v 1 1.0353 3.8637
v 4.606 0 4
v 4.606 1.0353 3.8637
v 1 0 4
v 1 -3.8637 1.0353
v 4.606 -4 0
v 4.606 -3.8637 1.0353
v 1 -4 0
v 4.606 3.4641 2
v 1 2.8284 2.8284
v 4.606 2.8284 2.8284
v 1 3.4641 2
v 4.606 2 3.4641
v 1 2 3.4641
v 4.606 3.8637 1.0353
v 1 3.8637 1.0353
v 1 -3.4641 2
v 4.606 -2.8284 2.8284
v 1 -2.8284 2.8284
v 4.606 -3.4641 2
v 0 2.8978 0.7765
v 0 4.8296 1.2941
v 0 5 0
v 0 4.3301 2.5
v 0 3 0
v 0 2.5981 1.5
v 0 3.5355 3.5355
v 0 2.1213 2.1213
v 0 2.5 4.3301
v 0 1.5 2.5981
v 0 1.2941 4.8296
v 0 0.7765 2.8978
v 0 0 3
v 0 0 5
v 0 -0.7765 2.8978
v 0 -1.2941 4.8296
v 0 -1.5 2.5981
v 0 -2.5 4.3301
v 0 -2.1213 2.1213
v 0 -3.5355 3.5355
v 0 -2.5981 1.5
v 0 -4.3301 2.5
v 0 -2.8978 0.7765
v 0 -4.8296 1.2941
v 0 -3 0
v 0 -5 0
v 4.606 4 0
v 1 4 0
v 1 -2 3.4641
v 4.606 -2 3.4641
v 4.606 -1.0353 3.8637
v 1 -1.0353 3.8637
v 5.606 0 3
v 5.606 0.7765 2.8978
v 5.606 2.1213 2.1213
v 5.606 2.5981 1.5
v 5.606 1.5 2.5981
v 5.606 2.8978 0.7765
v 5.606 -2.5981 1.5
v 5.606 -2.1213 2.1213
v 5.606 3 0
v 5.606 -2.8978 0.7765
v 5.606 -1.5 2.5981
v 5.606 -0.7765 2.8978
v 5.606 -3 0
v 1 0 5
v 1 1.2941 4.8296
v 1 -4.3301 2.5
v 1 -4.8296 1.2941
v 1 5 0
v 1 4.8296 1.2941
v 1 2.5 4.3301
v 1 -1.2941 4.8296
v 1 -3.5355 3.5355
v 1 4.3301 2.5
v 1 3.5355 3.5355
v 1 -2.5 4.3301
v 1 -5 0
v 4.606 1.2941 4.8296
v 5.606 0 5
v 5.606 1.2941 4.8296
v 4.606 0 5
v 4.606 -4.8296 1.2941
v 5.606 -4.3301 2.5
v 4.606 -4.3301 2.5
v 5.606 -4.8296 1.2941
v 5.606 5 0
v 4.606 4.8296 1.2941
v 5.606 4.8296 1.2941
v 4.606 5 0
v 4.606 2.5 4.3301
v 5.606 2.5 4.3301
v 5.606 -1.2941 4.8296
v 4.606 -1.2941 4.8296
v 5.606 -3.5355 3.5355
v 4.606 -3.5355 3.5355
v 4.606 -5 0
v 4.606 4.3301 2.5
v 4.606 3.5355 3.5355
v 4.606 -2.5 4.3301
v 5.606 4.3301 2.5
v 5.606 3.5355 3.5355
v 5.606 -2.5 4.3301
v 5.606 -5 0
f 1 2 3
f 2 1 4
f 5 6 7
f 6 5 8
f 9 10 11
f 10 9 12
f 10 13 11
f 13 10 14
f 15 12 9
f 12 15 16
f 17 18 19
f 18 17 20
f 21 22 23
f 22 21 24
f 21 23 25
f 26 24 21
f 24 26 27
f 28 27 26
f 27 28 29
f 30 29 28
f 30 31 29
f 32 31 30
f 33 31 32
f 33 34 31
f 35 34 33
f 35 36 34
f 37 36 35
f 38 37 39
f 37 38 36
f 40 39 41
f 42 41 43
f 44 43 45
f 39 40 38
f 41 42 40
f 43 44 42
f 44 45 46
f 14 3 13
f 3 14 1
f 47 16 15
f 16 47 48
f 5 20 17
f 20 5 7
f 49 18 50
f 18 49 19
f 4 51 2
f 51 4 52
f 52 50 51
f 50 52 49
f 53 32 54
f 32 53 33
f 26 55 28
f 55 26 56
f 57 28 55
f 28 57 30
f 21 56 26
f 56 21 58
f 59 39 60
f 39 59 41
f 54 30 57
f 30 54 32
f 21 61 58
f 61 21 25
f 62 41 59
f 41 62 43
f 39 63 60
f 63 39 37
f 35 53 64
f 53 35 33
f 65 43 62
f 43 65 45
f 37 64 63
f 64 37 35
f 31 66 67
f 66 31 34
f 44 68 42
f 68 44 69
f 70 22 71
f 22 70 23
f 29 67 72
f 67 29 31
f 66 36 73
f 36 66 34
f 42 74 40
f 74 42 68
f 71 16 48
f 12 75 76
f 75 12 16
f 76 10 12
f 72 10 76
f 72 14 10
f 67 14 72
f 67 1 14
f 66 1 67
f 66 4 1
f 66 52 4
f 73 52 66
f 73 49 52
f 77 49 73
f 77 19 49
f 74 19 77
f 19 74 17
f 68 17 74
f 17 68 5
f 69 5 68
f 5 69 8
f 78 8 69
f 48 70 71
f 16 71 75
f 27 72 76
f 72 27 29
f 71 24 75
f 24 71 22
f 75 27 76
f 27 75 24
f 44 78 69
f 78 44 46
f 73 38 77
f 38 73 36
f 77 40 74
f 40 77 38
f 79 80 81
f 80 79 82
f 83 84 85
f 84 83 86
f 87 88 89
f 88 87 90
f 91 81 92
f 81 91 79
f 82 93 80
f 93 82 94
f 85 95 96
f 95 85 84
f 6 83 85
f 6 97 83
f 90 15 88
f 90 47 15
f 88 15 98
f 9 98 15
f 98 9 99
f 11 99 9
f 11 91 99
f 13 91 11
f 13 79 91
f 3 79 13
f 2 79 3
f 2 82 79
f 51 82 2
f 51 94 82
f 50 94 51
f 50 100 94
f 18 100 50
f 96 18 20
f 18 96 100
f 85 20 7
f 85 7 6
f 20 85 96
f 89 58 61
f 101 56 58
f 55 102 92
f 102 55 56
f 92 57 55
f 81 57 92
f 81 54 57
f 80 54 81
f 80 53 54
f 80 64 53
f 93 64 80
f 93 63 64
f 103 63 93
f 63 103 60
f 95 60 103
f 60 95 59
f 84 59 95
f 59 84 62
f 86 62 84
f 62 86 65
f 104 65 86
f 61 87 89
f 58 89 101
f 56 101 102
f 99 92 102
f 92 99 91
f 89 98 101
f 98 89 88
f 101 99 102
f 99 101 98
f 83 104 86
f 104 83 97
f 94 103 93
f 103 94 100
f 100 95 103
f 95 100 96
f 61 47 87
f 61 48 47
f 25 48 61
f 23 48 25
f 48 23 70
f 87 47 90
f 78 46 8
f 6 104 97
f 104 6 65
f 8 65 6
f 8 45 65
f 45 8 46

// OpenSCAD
// file: ../build_environments.scad
// build_environments.scad: modules to build level sections
//

module pool(diameter=10.0, wall_height=2.0, step_width=3.0, connections=[])
{
    difference() {
        union() {
        difference() {
            cylinder(h=0.5,r1=diameter+step_width,r2=diameter+step_width,$fn=48);
            translate([0,0,-0.1])
                cylinder(h=0.7,r1=diameter,r2=diameter,$fn=48);
        }
        difference() {
            cylinder(h=wall_height,r1=diameter+step_width+1.0,r2=diameter+step_width+1.0,$fn=48);
            translate([0,0,-0.1])
                cylinder(h=wall_height+0.2,r1=diameter+step_width,r2=diameter+step_width,$fn=48);
        }
        }
    
        for (c = connections)
        {
            rotate([0,90,0]) {
                angle = atan2(c[1],c[0]);
                rotate([-angle,0,0]) {
                    cylinder(h=diameter+5.0,r1=c[2],r2=c[2],$fn=48);
                }
            }
        }
    }
}

module straight(length=10.0, width=2.0, dy1=0.0, dy2=0.0, dz=0.0)
{
    dims = [0, 0, 0, 0, 0, (dz/length)];
    matrix = [
        [ 1, dims[0], dims[1], 0 ],
        [ dims[2], 1, dims[4], 0 ],
        [ dims[5], dims[3], 1, 0 ],
        [ 0, 0, 0, 1 ]
    ];
    multmatrix(matrix)
    difference() {
        translate([dy1,0,0])
        union() {
            rotate([0,90,0]) {
                difference() {
                    cylinder(h=(length-dy1-dy2),r1=width+1.0,r2=width+1.0,$fn=24);
                    translate([0,0,-0.1])
                        cylinder(h=(length-dy1-dy2+0.2),r1=width,r2=width,$fn=24);
                }
                difference() {
                    cylinder(h=1.0,r1=width+2.0,r2=width+2.0,$fn=24);
                    translate([0,0,-0.1])
                        cylinder(h=1.2,r1=width,r2=width,$fn=24);
                }
                translate([0,0,(length-dy1-dy2)-1.0]) {
                    difference() {
                        cylinder(h=1.0,r1=width+2.0,r2=width+2.0,$fn=24);
                        translate([0,0,-0.1])
                            cylinder(h=1.2,r1=width,r2=width,$fn=24);
                    }
                }
            }
        }
        translate([0,0,-(2*width+4.0)/2])
            cube([3*length,3*length,2*width+4.0],center=true);
    }
}

module curve(p0=[0,0], center=[0,0], dir=1, angle=0.0, width=2.0)
{
    radius = sqrt((p0[0]-center[0])*(p0[0]-center[0]) + (p0[1]-center[1])*(p0[1]-center[1]));
    if (dir == 0) {
        difference() {
            rotate([0,0,-90])
            difference() {
                rotate_extrude(angle = angle, convexity = 10, $fn=32)
                    translate([radius, 0, 0])
                        circle(r = width+1.0,$fn=24);
                rotate([0,0,-1.0])
                    rotate_extrude(angle = angle+2.0, convexity = 10, $fn=32)
                        translate([radius, 0, 0])
                            circle(r = width,$fn=24);
            }
            translate([0,0,-(2*width+4.0)/2])
                cube([5*radius,5*radius,2*width+4.0],center=true);
        }
    }
    else {
        difference() {
            rotate([0,0,90])
            difference() {
                rotate_extrude(angle = -angle, convexity = 10, $fn=32)
                    translate([radius, 0, 0])
                        circle(r = width+1.0,$fn=24);
                rotate([0,0,1.0])
                    rotate_extrude(angle = -angle-2.0, convexity = 10, $fn=32)
                        translate([radius, 0, 0])
                            circle(r = width,$fn=24);
            }
            translate([0,0,-(2*width+4.0)/2])
                cube([5*radius,5*radius,2*width+4.0],center=true);
        }
    }

}

// test pool
//pool(diameter=12.0000, wall_height=3.0000, step_width=3.0000, connections=[[0.0000,-26.0000,2.0000], [23.6074,0.0000,2.0000]]);

// test straight, slope
//straight(length=26.0000, width=2.0000, dy1=11.8322, dy2=6.7082, dz=0.0000);
//straight(length=29.1549, width=12.0000, dy1=0.0000, dy2=0.0000, dz=-15.0000);

// test curve
//curve(p0=[23.6074, 0.0000], center=[23.6074, 5.0000], dir=0, angle=60.1011, width=2.0000);
//curve(p0=[33.6426, 12.4219], center=[37.9771, 9.9295], dir=1, angle=120.4627, width=2.0000);
// main file
use <../build_environments.scad>;
straight(length=5.6060, width=3.0000, dy1=0.0000, dy2=0.0000, dz=0.0000);
